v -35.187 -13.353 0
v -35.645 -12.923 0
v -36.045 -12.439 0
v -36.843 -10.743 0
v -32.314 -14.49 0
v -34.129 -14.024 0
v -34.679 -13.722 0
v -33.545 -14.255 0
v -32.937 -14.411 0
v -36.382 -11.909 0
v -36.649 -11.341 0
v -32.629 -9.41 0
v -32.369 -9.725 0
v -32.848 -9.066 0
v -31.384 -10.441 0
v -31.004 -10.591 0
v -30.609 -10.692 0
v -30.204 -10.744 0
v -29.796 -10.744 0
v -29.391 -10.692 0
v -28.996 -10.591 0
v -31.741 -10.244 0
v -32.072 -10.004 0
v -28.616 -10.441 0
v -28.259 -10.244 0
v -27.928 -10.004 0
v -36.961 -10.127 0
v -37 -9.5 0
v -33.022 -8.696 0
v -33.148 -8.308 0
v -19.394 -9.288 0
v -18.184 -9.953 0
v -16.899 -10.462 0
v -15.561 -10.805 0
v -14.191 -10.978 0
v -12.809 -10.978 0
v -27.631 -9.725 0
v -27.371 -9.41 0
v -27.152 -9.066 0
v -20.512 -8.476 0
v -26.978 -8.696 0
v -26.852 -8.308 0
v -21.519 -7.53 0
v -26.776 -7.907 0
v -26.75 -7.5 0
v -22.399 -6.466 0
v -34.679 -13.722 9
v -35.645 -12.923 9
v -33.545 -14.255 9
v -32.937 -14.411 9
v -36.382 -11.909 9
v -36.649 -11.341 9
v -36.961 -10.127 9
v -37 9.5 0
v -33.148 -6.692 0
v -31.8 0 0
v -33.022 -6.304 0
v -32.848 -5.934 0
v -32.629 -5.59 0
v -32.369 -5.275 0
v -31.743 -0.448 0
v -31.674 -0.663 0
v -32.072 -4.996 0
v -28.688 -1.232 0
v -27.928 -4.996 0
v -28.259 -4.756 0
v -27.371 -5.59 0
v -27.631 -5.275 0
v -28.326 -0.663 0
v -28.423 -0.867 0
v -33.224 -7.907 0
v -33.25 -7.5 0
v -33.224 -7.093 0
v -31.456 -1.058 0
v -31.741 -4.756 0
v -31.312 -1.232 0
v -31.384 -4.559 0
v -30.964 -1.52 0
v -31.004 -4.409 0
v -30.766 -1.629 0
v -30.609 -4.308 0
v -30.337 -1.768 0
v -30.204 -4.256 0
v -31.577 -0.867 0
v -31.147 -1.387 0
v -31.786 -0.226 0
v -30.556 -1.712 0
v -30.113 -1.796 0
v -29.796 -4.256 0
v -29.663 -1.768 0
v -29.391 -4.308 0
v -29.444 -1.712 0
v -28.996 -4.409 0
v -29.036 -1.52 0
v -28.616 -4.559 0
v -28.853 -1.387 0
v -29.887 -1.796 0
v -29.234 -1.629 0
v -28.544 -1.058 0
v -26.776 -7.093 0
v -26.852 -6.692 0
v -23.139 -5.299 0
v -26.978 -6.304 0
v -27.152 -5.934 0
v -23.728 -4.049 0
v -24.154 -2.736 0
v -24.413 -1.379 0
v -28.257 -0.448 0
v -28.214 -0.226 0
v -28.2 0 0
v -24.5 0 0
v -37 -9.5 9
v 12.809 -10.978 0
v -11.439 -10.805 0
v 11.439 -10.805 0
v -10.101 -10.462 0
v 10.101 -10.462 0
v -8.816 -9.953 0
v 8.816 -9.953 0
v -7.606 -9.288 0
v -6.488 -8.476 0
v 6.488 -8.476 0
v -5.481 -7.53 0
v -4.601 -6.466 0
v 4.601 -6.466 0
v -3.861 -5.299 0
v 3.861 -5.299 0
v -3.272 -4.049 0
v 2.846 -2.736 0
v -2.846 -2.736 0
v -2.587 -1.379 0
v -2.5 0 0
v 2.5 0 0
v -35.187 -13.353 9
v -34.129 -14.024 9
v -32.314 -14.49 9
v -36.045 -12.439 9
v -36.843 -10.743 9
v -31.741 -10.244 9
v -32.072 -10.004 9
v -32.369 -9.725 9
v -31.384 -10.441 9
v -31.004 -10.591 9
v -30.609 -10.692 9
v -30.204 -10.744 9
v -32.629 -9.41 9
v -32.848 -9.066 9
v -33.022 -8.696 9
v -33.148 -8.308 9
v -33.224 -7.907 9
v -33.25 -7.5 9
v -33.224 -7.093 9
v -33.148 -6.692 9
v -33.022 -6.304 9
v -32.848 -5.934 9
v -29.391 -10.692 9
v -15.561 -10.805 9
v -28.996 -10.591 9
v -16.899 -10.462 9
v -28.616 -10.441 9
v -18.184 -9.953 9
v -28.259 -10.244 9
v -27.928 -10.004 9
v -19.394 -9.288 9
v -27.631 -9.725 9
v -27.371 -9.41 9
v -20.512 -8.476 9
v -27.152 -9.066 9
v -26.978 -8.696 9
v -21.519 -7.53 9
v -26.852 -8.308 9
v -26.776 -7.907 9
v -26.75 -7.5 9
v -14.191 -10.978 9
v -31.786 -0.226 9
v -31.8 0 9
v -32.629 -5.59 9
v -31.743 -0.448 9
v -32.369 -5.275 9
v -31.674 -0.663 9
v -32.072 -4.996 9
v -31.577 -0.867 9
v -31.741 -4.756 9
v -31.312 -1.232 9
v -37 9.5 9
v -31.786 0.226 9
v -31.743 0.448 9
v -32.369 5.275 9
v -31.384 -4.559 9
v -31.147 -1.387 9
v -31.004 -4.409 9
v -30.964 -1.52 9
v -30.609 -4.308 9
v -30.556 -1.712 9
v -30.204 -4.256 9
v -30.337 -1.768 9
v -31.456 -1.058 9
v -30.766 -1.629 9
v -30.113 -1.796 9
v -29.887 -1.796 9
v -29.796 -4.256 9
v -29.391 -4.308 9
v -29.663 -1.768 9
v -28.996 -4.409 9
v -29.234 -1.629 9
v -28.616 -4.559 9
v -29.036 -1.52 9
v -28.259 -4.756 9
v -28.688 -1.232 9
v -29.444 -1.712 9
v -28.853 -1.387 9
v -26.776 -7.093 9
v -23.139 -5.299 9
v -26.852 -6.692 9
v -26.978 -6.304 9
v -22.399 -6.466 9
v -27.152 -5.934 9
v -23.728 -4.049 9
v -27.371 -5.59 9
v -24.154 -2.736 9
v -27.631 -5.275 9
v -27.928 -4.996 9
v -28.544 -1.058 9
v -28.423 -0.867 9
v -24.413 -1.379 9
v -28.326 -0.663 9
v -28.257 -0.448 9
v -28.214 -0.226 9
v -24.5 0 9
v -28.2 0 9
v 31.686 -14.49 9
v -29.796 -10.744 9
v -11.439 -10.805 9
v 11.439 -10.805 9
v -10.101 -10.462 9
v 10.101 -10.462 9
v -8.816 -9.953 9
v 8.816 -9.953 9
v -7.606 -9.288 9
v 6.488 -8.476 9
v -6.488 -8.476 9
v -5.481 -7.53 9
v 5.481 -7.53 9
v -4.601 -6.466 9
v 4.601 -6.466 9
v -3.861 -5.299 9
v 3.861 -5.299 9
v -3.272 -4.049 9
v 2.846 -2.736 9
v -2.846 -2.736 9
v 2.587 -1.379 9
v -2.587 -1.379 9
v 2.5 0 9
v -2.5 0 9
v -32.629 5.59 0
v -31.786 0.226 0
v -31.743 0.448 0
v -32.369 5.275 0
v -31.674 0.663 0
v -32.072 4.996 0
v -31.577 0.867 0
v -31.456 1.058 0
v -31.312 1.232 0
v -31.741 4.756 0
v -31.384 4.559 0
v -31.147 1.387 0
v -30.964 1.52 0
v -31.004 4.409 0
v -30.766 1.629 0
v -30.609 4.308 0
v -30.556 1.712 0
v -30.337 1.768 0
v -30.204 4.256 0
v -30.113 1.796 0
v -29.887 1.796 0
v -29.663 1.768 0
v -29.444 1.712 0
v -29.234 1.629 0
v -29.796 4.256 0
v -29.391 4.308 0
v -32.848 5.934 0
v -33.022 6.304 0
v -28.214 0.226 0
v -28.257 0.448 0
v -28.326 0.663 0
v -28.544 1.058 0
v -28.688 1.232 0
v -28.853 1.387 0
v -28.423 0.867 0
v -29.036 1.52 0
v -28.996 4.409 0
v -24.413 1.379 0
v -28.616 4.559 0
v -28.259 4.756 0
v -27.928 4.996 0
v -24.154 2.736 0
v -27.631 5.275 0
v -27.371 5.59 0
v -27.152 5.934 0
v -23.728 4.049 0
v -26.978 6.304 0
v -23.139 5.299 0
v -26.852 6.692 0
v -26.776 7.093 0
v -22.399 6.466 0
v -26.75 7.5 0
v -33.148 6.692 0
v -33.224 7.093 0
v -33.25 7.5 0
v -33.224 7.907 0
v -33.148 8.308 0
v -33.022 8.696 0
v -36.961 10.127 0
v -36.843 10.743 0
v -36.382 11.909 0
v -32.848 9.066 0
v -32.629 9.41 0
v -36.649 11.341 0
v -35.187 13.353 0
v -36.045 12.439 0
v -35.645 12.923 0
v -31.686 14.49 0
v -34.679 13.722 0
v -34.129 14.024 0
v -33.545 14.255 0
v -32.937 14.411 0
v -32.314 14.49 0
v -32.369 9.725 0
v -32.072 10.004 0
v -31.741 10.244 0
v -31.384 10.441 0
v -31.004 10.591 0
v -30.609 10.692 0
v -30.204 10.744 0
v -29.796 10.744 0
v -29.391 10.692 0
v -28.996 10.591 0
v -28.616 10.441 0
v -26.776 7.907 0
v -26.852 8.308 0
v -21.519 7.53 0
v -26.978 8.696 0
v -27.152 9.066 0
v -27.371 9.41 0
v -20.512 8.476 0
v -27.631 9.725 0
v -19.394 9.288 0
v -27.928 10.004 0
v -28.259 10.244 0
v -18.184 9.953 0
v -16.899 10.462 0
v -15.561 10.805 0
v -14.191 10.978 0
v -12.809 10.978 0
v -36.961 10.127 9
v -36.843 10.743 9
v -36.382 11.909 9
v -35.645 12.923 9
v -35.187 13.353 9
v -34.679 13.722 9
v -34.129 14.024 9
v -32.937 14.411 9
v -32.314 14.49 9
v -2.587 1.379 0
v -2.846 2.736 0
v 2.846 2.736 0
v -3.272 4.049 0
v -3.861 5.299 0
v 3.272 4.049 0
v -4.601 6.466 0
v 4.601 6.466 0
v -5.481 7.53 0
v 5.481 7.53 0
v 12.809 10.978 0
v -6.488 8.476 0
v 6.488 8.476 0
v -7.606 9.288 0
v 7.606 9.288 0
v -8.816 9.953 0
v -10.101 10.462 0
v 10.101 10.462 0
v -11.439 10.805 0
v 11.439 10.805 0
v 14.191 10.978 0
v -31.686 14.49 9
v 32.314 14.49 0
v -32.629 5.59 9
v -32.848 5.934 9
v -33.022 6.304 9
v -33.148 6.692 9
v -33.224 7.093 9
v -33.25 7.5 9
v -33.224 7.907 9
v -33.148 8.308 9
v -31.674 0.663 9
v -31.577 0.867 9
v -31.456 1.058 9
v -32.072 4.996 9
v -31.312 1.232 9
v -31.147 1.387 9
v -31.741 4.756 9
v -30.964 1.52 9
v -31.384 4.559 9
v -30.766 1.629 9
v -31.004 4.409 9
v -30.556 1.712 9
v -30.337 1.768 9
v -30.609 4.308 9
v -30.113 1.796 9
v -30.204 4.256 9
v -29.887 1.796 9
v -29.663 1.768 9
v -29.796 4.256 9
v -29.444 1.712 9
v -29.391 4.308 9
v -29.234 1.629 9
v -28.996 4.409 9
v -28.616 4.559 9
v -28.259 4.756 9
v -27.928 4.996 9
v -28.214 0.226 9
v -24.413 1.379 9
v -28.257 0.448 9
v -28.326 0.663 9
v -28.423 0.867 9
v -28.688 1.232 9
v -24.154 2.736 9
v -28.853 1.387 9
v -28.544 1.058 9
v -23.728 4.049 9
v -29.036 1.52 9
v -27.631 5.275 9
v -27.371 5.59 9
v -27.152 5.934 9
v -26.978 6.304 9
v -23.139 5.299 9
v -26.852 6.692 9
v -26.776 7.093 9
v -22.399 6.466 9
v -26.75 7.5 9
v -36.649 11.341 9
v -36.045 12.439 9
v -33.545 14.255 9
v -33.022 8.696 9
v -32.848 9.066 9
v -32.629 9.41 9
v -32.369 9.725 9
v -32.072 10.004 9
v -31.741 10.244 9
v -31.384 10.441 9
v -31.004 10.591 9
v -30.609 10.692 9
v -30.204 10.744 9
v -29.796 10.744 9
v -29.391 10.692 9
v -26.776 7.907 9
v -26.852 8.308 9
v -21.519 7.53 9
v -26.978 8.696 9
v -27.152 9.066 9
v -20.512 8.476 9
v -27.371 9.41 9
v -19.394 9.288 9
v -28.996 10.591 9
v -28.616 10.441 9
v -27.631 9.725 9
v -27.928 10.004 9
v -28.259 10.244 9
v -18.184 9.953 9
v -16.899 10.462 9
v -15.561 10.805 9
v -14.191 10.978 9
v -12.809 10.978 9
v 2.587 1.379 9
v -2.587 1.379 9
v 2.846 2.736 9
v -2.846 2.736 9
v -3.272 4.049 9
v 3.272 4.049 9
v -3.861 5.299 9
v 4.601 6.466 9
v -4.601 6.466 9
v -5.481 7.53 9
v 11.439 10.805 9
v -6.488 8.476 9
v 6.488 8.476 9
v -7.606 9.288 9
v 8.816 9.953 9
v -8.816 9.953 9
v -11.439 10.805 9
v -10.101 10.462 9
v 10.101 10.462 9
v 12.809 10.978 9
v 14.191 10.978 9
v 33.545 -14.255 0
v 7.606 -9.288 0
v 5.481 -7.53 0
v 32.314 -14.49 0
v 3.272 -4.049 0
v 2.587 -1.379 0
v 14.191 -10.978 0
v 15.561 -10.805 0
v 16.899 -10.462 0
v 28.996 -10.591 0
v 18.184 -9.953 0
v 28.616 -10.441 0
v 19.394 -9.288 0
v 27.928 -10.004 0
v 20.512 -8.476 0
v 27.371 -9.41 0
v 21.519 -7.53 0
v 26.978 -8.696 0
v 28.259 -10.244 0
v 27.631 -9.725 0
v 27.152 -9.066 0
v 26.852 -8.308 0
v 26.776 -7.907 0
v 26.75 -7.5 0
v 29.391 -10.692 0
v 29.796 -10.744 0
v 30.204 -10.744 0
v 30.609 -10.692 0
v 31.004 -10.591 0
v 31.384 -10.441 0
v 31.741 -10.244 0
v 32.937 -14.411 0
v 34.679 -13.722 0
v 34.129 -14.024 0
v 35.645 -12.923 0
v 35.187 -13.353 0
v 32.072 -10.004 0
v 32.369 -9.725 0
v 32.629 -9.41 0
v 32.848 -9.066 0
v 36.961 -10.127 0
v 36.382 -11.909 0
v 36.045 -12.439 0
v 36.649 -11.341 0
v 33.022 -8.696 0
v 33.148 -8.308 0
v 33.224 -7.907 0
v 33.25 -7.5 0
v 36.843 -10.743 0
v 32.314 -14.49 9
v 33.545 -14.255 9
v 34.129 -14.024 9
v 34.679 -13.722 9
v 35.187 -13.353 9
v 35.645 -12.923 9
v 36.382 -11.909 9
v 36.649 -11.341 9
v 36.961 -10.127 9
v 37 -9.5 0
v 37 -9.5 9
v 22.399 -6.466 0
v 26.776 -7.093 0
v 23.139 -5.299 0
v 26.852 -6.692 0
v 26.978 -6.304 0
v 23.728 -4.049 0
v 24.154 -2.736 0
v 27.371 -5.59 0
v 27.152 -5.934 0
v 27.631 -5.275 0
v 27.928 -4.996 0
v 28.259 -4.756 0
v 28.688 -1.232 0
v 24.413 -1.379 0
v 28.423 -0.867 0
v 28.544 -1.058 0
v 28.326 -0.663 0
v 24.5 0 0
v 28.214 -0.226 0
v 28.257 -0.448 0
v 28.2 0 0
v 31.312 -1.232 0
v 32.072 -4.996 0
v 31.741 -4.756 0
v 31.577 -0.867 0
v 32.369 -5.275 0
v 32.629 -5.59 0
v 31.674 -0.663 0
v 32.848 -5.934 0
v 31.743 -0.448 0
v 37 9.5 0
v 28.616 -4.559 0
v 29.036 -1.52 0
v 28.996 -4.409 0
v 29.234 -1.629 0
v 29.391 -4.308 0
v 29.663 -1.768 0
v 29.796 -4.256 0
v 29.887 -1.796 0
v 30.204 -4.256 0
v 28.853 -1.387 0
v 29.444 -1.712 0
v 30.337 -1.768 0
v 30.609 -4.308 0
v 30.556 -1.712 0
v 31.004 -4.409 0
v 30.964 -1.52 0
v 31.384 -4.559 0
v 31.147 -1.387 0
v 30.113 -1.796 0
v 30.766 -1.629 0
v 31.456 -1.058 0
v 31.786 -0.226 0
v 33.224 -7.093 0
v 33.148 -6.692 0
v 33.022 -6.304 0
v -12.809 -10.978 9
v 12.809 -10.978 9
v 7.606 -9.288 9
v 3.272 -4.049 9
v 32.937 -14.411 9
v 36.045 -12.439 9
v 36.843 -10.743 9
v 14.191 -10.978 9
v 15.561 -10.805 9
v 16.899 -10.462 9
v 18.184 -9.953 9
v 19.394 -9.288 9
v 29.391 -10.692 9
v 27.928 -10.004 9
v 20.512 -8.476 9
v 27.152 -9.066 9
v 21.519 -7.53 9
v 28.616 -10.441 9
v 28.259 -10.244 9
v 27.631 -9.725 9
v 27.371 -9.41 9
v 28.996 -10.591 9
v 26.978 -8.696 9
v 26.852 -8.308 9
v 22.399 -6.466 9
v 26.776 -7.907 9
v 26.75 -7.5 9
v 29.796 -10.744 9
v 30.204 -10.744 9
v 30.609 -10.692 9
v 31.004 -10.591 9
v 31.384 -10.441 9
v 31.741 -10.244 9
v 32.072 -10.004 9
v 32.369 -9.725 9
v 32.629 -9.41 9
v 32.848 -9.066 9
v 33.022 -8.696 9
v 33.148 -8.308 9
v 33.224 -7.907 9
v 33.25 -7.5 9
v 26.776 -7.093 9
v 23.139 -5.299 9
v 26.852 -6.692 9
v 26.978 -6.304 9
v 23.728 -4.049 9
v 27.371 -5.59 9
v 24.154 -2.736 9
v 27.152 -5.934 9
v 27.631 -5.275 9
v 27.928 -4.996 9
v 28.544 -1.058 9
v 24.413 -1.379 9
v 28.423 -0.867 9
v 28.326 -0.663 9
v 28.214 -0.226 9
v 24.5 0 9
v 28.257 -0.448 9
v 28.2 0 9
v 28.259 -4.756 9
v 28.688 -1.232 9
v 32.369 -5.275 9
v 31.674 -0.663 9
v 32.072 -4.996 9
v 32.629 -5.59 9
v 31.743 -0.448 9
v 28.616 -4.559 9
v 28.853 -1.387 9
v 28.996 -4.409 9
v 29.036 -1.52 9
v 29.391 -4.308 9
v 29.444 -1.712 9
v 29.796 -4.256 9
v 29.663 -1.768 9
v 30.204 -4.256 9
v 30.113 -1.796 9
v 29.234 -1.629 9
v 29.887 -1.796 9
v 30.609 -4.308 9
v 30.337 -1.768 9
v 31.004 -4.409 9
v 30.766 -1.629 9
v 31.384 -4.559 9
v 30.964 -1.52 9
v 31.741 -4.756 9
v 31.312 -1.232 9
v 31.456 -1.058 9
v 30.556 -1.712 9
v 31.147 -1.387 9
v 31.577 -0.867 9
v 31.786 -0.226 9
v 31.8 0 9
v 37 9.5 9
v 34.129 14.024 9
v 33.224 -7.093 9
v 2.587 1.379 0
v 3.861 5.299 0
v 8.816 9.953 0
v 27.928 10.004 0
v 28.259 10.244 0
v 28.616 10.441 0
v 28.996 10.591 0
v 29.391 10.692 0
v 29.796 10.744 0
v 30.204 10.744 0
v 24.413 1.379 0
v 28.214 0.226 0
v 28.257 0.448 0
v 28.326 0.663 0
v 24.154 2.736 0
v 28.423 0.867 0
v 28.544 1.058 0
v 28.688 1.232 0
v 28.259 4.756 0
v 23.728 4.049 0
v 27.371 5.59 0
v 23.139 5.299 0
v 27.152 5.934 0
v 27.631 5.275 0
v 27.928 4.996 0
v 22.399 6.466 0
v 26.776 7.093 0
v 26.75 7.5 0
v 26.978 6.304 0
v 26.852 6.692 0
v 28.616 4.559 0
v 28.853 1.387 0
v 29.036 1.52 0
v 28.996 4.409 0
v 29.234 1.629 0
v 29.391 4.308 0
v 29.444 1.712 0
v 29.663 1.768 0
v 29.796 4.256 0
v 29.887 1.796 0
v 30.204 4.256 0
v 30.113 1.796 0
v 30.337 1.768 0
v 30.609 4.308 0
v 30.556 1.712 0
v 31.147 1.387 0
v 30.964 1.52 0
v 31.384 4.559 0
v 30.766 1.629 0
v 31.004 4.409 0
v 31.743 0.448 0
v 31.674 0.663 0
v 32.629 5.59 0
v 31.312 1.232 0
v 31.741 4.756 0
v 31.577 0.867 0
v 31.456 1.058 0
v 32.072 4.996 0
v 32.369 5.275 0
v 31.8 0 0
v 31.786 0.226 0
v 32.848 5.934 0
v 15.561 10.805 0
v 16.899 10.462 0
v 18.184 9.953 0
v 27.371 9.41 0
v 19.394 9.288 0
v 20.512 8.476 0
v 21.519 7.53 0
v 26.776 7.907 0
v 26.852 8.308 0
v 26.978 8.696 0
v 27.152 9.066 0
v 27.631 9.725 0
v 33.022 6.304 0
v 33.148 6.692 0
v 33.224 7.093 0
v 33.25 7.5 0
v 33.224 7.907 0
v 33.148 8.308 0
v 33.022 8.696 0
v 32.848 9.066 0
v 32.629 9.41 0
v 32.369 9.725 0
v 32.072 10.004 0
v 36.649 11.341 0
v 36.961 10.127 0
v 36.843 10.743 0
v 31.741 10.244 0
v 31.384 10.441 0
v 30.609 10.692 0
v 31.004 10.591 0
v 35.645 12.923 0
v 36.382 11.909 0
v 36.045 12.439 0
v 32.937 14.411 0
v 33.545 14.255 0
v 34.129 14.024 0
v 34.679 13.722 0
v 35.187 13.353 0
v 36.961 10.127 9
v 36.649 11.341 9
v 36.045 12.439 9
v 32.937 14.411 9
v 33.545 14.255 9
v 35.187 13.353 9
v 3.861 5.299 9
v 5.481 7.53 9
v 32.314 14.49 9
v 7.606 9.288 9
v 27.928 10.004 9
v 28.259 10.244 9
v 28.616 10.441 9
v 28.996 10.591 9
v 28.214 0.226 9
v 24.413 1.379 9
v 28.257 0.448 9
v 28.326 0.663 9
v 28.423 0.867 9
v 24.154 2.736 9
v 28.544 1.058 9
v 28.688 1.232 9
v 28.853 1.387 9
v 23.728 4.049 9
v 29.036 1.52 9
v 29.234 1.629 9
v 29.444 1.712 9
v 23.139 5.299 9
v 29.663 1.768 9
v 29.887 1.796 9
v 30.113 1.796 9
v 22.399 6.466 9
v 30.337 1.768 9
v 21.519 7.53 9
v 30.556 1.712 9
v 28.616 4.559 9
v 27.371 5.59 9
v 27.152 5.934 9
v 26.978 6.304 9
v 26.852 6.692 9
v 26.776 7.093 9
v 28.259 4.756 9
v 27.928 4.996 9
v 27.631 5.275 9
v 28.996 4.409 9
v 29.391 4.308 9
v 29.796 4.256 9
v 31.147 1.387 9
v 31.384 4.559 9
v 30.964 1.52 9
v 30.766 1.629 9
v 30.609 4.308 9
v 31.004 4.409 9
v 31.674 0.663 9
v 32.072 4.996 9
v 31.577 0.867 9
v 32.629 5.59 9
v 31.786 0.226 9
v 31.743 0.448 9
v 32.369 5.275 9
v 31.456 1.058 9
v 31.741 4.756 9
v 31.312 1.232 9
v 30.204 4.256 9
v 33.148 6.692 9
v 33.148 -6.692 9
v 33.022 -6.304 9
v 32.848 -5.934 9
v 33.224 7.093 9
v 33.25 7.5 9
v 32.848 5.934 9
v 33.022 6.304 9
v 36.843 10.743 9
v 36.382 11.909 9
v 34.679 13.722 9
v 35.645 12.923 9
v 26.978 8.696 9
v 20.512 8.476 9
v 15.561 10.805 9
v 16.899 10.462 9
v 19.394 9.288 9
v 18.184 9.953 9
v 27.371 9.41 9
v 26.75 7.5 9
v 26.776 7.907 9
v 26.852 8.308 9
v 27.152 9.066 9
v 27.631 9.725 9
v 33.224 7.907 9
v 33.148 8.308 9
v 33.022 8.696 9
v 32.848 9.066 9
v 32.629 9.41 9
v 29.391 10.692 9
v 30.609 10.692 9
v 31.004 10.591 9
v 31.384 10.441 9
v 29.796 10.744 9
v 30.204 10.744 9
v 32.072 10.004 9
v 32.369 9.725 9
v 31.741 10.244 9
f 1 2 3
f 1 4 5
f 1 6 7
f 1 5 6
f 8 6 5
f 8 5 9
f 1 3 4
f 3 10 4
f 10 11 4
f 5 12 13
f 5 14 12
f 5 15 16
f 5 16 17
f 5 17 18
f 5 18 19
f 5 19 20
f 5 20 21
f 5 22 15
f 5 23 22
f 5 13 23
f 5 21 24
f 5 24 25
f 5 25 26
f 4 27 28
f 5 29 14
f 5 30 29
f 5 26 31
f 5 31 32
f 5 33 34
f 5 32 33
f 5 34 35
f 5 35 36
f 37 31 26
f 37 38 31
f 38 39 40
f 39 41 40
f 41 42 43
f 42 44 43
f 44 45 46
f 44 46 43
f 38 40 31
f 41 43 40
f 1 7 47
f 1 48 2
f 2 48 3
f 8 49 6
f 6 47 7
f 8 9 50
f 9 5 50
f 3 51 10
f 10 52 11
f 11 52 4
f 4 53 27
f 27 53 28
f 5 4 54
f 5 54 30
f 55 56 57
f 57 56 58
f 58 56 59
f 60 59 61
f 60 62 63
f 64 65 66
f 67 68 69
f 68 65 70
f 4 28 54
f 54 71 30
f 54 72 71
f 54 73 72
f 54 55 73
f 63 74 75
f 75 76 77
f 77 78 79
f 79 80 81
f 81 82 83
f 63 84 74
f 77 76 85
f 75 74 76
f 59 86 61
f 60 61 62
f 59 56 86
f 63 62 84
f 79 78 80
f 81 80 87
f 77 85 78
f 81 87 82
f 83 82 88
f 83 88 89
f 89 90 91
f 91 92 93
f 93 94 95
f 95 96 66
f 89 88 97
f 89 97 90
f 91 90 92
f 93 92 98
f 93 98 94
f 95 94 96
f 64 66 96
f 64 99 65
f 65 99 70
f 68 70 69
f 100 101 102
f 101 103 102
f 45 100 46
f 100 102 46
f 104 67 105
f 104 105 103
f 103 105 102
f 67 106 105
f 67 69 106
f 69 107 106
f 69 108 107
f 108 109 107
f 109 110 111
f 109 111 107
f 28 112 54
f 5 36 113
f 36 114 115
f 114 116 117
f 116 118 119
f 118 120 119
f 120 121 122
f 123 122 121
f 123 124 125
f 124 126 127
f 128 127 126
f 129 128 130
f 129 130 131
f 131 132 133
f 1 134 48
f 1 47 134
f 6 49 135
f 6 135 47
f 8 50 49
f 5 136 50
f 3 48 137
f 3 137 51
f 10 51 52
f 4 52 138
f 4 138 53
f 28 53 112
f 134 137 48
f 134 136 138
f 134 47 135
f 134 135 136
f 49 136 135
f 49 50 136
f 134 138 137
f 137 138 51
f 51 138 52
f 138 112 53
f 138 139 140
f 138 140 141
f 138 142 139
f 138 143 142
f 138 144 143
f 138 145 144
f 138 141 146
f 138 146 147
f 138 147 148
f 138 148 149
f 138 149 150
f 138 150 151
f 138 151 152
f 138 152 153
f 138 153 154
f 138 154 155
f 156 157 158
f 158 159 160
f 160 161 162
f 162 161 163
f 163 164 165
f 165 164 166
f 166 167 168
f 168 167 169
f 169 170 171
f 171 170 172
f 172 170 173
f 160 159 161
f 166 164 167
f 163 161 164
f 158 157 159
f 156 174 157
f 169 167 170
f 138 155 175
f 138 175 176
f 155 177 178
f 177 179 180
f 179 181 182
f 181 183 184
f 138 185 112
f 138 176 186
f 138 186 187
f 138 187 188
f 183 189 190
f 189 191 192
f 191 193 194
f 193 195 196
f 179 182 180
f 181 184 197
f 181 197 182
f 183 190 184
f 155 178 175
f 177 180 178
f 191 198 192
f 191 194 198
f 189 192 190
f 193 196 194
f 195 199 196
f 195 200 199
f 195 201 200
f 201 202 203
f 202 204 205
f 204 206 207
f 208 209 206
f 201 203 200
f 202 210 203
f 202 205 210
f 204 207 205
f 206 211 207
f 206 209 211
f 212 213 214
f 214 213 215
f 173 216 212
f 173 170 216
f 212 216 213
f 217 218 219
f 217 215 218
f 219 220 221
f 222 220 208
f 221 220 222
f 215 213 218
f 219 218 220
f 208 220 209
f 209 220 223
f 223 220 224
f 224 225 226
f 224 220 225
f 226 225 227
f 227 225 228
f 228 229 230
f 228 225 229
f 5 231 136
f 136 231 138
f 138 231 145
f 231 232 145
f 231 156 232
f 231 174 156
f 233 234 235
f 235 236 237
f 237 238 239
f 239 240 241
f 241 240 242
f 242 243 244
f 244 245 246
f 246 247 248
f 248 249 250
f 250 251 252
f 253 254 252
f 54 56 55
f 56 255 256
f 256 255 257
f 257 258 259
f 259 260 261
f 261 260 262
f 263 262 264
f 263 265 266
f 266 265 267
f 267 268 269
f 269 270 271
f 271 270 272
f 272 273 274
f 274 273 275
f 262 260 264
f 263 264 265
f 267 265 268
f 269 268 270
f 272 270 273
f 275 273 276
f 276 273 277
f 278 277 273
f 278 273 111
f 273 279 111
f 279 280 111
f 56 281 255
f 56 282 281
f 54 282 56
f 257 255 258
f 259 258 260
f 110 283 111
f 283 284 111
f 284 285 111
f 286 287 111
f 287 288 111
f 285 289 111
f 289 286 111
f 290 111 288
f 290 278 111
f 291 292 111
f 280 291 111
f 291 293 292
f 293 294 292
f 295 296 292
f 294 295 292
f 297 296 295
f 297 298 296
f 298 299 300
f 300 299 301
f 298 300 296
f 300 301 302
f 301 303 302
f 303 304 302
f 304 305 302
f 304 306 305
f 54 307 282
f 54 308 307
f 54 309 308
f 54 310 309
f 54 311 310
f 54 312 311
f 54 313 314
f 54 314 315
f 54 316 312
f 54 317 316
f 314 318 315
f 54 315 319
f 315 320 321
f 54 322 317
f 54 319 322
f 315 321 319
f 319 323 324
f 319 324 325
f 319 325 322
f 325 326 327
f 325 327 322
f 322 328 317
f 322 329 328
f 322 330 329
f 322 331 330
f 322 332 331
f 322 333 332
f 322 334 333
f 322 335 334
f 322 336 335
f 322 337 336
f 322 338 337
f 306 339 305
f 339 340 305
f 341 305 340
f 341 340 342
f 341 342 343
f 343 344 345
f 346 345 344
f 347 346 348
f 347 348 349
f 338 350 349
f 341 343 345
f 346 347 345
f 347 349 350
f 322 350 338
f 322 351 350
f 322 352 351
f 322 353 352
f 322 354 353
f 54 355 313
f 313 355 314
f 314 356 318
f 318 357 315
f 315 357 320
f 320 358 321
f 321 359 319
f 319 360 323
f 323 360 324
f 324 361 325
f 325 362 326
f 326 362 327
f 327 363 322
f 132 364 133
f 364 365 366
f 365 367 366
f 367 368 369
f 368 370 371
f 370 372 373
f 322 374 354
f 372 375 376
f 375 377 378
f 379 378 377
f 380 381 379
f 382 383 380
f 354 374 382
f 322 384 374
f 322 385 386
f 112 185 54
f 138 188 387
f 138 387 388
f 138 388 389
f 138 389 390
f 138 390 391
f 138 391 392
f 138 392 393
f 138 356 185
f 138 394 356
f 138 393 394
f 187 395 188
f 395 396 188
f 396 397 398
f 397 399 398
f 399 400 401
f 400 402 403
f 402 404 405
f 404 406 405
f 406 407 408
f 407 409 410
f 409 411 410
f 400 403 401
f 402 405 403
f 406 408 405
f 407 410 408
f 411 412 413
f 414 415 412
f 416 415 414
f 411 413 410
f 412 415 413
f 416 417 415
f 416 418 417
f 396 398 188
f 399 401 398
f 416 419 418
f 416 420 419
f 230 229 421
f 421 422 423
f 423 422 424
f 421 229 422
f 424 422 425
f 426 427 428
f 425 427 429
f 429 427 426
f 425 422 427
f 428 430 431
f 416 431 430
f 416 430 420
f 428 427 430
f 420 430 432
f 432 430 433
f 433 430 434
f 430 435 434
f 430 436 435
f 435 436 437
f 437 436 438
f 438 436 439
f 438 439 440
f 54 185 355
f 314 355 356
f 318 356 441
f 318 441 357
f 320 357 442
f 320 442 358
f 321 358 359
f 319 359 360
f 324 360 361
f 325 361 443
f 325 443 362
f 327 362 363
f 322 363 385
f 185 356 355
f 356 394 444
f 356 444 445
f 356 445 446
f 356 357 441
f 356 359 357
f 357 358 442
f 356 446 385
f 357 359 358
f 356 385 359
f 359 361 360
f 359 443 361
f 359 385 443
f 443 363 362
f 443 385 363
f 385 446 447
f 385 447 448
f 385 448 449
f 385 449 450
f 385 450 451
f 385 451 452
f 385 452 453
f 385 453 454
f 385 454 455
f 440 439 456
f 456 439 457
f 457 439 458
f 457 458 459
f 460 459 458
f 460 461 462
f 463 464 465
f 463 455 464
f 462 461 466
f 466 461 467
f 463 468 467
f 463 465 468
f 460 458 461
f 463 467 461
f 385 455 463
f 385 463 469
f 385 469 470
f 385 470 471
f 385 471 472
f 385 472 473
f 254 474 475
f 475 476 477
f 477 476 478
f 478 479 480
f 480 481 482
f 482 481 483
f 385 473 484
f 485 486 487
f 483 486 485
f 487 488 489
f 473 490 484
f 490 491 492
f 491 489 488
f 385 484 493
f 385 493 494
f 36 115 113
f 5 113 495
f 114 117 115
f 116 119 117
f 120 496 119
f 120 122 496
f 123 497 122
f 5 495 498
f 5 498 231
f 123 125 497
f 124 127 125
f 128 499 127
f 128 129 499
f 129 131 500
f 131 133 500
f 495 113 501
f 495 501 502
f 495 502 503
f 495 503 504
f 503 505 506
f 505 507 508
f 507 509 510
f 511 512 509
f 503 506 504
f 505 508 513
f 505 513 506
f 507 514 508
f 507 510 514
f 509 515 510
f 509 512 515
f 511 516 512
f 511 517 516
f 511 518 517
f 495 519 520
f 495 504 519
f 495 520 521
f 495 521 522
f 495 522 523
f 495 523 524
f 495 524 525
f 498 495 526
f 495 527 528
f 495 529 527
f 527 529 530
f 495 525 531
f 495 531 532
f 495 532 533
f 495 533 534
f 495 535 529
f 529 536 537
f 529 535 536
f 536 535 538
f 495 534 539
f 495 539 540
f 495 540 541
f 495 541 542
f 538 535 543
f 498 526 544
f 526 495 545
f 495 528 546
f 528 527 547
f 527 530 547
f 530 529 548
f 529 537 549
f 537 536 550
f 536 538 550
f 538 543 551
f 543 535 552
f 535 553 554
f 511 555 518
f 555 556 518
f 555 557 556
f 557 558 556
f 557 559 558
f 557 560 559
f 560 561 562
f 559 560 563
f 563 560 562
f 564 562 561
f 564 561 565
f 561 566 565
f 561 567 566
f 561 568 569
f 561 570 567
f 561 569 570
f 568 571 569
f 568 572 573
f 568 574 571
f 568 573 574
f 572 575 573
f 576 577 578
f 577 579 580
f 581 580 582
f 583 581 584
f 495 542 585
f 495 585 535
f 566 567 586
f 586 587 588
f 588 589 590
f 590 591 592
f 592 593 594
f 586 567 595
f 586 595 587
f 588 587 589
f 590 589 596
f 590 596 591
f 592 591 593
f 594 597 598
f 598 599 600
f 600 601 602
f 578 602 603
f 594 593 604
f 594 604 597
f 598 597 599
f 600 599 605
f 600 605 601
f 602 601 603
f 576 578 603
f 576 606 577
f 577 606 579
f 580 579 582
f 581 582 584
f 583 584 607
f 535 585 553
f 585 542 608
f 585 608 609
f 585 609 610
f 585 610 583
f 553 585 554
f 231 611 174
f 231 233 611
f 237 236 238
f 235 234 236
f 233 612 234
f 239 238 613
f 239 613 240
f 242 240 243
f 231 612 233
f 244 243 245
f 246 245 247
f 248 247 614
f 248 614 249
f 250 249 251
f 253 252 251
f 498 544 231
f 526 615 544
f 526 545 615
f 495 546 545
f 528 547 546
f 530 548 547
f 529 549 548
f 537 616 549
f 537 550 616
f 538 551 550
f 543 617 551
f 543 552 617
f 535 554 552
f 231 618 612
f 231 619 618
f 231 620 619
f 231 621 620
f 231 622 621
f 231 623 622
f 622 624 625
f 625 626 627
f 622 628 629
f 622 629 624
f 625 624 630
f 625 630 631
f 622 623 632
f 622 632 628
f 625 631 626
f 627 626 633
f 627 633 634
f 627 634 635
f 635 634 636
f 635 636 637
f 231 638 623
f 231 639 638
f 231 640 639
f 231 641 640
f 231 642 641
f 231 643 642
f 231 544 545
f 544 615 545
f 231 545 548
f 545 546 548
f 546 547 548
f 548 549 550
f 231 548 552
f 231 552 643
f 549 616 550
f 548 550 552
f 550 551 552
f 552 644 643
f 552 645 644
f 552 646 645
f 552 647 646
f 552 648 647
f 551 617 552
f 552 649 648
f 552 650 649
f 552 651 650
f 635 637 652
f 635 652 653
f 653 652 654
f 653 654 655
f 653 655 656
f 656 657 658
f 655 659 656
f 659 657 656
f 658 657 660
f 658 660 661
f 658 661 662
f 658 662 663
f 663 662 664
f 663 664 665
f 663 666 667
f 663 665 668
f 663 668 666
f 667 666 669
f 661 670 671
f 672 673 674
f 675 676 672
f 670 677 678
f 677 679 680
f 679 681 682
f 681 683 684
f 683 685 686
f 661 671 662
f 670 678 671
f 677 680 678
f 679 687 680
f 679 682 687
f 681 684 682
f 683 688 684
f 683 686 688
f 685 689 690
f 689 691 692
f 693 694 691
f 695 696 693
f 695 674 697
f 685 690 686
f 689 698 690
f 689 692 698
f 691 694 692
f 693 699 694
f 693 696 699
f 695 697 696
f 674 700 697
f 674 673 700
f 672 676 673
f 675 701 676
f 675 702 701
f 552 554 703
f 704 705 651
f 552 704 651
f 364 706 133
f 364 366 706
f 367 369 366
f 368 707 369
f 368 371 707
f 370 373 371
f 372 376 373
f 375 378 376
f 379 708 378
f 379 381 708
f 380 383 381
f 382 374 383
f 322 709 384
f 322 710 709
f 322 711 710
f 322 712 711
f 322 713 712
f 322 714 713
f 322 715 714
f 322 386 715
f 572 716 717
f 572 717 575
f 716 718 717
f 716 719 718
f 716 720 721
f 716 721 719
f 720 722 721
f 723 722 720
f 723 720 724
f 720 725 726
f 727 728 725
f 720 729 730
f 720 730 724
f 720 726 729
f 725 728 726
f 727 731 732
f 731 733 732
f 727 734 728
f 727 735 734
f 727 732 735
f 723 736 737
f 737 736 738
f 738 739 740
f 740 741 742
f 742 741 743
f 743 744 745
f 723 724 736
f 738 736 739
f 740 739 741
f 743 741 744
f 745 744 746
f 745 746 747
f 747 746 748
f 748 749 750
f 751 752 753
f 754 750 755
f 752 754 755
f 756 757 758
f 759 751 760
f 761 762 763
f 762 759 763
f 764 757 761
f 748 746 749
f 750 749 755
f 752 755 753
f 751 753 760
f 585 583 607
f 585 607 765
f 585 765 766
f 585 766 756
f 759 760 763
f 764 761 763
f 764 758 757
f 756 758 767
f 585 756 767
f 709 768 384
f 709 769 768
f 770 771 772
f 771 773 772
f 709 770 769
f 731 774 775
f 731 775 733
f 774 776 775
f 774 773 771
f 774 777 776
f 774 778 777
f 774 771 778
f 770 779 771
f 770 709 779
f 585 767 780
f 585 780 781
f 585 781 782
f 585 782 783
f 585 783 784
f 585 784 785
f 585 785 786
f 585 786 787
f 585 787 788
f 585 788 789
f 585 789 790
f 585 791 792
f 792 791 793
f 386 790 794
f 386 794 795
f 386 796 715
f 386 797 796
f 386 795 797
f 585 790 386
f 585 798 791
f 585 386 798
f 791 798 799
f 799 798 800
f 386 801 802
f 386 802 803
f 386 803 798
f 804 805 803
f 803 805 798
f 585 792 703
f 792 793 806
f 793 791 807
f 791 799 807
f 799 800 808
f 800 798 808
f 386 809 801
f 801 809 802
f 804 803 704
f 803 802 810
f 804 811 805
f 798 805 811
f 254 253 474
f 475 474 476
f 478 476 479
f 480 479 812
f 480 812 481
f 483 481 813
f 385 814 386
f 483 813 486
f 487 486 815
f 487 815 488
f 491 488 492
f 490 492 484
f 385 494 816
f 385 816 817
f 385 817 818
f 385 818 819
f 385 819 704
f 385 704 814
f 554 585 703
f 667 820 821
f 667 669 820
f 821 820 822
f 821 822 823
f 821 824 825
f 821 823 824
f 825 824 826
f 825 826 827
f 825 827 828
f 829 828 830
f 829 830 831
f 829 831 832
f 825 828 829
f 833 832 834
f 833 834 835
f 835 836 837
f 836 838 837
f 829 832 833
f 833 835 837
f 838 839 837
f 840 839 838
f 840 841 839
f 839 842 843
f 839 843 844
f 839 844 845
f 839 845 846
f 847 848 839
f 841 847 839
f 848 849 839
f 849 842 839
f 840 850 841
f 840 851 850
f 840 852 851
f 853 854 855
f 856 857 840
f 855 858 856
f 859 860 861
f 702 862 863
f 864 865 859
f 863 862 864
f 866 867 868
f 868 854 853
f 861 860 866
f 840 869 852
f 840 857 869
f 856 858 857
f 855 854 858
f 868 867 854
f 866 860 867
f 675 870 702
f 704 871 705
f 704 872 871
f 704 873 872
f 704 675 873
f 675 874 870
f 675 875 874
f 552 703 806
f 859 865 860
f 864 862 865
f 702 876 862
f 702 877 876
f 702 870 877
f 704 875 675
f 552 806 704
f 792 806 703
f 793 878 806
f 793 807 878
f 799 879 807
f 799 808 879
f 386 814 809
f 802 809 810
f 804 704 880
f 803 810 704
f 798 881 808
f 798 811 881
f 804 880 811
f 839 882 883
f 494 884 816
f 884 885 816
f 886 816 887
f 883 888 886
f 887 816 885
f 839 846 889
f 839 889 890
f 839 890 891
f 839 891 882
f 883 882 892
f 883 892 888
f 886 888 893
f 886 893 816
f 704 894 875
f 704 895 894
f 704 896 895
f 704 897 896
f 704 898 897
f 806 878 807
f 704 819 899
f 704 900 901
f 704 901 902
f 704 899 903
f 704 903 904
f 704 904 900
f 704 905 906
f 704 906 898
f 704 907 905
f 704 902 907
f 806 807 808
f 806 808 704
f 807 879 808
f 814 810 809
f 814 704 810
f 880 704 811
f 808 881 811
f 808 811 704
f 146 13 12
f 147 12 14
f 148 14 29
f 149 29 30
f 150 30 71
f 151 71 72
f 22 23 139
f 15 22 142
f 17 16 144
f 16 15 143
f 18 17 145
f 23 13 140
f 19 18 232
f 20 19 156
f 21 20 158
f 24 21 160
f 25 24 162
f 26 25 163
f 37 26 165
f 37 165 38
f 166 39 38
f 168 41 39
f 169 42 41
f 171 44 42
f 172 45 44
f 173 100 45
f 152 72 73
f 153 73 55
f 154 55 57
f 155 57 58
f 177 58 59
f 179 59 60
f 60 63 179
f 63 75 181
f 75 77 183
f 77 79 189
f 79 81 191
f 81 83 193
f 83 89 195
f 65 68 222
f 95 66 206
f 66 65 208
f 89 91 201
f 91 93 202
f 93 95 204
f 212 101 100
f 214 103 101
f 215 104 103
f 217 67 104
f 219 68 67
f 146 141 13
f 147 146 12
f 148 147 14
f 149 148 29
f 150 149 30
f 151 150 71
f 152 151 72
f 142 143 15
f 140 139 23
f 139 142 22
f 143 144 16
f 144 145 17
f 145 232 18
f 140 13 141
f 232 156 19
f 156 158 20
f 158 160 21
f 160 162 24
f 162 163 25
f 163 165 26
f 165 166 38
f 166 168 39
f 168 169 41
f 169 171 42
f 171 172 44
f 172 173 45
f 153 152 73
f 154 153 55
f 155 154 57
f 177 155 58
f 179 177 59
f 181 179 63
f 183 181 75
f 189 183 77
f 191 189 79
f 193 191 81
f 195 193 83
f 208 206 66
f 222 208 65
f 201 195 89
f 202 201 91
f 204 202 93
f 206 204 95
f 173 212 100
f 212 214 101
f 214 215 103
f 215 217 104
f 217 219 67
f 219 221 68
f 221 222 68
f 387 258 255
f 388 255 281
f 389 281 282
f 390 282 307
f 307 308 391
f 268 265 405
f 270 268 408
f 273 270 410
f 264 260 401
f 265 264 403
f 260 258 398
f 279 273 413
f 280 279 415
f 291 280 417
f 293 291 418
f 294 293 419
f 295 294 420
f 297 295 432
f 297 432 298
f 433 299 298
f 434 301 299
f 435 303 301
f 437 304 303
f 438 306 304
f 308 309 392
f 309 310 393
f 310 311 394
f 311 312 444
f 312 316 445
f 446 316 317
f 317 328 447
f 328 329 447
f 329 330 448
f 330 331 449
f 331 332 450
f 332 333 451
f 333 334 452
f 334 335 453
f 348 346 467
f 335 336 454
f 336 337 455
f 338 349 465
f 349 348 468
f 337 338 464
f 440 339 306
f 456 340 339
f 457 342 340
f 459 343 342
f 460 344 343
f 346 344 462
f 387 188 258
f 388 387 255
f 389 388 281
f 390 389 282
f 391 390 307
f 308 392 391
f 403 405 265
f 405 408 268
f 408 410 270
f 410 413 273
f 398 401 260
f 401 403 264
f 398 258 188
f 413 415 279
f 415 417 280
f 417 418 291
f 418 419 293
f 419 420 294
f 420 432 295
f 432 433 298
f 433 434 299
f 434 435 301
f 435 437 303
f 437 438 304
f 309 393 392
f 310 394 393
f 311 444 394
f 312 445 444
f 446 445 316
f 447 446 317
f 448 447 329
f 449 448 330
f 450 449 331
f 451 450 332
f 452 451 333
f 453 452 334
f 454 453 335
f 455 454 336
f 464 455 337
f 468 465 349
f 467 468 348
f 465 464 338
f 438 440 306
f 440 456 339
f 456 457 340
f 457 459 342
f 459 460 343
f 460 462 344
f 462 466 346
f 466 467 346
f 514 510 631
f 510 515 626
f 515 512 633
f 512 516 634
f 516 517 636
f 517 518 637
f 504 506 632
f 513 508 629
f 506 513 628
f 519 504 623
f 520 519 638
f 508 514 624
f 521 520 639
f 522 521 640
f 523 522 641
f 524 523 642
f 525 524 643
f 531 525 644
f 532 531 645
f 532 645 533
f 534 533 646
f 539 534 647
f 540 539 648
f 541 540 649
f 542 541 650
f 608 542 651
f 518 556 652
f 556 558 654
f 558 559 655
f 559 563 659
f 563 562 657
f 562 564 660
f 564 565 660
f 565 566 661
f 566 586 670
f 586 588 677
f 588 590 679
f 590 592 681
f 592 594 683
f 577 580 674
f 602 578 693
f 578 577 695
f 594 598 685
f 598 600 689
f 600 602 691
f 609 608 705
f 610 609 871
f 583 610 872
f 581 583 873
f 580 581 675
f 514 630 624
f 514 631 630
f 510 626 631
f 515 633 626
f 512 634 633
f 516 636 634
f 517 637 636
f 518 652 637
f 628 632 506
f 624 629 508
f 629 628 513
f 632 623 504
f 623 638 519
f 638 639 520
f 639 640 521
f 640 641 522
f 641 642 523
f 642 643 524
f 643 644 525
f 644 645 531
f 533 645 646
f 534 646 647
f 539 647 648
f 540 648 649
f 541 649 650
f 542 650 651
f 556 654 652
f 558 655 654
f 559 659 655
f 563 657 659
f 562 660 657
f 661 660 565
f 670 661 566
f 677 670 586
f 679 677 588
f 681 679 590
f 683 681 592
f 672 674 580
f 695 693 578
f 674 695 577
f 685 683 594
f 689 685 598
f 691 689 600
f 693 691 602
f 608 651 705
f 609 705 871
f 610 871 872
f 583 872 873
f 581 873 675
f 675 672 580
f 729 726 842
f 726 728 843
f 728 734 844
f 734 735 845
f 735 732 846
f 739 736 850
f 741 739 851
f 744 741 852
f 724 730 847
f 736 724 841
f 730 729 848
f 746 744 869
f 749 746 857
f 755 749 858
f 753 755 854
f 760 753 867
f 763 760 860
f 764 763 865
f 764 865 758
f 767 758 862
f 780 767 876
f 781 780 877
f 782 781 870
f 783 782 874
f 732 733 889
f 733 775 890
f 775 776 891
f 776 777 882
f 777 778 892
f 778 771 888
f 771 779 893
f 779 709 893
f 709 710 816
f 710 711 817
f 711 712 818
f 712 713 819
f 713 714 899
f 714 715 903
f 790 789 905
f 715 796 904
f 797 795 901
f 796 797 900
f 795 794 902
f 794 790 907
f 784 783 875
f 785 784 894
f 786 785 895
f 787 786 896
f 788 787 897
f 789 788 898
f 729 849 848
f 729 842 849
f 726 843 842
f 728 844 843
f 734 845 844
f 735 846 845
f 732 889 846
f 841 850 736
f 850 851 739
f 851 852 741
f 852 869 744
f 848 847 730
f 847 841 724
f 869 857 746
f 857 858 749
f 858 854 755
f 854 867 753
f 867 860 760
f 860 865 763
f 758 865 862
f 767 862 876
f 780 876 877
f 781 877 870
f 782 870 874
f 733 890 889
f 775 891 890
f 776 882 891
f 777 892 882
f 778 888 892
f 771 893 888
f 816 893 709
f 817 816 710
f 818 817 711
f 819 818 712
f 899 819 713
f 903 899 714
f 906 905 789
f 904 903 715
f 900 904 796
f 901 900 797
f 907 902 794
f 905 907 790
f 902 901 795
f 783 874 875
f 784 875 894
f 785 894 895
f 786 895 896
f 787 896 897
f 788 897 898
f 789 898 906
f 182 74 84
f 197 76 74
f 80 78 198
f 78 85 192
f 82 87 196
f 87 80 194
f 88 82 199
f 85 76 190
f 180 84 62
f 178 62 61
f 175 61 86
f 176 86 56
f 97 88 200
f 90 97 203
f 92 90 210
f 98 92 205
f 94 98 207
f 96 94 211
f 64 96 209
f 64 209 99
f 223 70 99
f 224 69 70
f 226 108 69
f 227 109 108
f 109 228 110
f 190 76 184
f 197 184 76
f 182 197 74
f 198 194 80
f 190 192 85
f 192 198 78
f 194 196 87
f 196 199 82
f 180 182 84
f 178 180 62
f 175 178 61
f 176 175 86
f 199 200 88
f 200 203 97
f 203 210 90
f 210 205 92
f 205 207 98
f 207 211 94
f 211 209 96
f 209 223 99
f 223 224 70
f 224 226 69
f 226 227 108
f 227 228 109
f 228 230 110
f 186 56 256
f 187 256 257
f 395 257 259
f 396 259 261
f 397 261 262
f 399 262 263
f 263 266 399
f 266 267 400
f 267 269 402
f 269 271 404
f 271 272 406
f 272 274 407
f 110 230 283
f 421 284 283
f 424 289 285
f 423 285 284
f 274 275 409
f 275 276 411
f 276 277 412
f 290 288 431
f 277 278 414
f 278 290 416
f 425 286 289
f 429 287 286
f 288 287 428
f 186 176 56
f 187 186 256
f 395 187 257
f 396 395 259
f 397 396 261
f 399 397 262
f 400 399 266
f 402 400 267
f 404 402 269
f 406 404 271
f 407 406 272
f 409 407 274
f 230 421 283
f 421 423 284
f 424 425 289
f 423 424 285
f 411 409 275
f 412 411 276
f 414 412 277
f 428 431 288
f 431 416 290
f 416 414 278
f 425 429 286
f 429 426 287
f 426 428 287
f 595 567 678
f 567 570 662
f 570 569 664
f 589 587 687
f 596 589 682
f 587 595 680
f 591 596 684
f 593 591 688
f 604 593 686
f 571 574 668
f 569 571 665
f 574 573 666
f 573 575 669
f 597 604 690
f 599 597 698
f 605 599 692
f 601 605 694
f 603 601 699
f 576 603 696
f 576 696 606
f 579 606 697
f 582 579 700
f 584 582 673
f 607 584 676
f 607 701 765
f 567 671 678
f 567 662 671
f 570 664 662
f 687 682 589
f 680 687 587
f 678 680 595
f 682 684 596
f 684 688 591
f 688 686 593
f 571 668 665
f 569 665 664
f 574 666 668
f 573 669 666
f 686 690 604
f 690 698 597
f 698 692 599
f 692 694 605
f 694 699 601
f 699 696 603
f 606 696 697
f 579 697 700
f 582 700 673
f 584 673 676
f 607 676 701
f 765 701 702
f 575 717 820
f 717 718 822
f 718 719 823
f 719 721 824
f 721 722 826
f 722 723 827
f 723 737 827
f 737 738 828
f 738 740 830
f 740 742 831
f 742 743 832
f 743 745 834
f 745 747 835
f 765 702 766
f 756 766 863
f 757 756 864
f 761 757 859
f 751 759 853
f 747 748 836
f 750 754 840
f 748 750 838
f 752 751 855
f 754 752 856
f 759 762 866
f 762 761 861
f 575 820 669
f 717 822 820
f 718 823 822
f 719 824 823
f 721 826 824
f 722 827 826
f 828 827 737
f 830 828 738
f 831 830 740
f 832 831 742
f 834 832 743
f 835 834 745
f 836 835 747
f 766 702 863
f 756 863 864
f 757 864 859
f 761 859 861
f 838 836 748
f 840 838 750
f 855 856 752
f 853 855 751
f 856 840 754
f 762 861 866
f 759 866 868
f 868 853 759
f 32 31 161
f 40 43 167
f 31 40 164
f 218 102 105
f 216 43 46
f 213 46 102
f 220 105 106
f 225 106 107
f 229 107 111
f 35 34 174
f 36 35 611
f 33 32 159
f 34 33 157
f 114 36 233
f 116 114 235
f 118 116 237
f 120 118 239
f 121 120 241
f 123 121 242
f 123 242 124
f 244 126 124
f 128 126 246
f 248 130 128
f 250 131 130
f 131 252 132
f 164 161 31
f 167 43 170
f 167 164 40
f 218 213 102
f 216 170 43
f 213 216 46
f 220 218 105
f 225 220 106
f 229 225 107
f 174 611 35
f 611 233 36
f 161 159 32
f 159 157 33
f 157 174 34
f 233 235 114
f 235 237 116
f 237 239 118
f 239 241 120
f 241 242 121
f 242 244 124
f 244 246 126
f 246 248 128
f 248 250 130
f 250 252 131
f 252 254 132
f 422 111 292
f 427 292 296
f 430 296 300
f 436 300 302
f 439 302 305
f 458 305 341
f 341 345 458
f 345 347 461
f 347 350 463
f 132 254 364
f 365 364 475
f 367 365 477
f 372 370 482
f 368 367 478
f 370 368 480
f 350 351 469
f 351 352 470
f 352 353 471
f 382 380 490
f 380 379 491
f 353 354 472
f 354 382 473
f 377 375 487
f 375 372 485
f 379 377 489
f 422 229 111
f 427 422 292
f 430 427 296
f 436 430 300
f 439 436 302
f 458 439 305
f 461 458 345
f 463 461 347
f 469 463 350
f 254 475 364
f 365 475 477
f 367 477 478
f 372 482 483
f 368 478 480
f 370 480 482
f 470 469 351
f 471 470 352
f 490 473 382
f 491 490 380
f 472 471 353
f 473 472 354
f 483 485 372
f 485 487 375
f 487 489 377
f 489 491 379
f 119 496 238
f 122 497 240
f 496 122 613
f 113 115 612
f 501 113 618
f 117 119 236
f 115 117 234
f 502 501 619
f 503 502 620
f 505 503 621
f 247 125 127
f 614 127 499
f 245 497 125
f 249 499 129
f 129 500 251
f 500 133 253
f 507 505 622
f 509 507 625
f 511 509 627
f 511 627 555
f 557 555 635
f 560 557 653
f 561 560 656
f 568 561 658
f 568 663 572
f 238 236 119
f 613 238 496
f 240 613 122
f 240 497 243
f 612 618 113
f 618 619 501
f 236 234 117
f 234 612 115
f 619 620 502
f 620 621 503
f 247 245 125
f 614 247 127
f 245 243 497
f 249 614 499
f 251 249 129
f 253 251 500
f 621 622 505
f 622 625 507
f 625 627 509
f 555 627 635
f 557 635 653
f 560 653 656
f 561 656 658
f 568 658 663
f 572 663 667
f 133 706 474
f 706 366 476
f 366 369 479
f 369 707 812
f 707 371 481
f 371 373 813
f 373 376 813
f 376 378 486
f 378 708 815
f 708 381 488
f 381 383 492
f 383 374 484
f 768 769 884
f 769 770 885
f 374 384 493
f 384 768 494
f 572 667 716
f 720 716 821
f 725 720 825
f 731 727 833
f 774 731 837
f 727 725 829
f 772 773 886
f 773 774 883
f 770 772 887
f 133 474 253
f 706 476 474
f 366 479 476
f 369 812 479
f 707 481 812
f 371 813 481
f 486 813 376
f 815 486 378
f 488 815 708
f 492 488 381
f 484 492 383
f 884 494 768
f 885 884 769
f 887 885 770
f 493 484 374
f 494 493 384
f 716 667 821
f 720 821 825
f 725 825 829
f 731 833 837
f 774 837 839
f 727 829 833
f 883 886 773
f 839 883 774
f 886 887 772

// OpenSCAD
$fn = 50;

difference() {
	union() {
		hull() {
			translate(v = [-32.0, 9.5, 0]) {
				cylinder(h = 9, r = 5);
			}
			translate(v = [32.0, 9.5, 0]) {
				cylinder(h = 9, r = 5);
			}
			translate(v = [-32.0, -9.5, 0]) {
				cylinder(h = 9, r = 5);
			}
			translate(v = [32.0, -9.5, 0]) {
				cylinder(h = 9, r = 5);
			}
		}
	}
	union() {
		translate(v = [-30.0, -7.5, 0]) {
			cylinder(h = 9, r = 3.25);
		}
		translate(v = [-30.0, 7.5, 0]) {
			cylinder(h = 9, r = 3.25);
		}
		translate(v = [30.0, -7.5, 0]) {
			cylinder(h = 9, r = 3.25);
		}
		translate(v = [30.0, 7.5, 0]) {
			cylinder(h = 9, r = 3.25);
		}
		translate(v = [-30.0, 0.0, 0]) {
			cylinder(h = 9, r = 1.8);
		}
		translate(v = [30.0, 0.0, 0]) {
			cylinder(h = 9, r = 1.8);
		}
		translate(v = [-13.5, 0, 0.0]) {
			cylinder(h = 9, r = 11.0);
		}
		translate(v = [13.5, 0, 0.0]) {
			cylinder(h = 9, r = 11.0);
		}
	}
}
